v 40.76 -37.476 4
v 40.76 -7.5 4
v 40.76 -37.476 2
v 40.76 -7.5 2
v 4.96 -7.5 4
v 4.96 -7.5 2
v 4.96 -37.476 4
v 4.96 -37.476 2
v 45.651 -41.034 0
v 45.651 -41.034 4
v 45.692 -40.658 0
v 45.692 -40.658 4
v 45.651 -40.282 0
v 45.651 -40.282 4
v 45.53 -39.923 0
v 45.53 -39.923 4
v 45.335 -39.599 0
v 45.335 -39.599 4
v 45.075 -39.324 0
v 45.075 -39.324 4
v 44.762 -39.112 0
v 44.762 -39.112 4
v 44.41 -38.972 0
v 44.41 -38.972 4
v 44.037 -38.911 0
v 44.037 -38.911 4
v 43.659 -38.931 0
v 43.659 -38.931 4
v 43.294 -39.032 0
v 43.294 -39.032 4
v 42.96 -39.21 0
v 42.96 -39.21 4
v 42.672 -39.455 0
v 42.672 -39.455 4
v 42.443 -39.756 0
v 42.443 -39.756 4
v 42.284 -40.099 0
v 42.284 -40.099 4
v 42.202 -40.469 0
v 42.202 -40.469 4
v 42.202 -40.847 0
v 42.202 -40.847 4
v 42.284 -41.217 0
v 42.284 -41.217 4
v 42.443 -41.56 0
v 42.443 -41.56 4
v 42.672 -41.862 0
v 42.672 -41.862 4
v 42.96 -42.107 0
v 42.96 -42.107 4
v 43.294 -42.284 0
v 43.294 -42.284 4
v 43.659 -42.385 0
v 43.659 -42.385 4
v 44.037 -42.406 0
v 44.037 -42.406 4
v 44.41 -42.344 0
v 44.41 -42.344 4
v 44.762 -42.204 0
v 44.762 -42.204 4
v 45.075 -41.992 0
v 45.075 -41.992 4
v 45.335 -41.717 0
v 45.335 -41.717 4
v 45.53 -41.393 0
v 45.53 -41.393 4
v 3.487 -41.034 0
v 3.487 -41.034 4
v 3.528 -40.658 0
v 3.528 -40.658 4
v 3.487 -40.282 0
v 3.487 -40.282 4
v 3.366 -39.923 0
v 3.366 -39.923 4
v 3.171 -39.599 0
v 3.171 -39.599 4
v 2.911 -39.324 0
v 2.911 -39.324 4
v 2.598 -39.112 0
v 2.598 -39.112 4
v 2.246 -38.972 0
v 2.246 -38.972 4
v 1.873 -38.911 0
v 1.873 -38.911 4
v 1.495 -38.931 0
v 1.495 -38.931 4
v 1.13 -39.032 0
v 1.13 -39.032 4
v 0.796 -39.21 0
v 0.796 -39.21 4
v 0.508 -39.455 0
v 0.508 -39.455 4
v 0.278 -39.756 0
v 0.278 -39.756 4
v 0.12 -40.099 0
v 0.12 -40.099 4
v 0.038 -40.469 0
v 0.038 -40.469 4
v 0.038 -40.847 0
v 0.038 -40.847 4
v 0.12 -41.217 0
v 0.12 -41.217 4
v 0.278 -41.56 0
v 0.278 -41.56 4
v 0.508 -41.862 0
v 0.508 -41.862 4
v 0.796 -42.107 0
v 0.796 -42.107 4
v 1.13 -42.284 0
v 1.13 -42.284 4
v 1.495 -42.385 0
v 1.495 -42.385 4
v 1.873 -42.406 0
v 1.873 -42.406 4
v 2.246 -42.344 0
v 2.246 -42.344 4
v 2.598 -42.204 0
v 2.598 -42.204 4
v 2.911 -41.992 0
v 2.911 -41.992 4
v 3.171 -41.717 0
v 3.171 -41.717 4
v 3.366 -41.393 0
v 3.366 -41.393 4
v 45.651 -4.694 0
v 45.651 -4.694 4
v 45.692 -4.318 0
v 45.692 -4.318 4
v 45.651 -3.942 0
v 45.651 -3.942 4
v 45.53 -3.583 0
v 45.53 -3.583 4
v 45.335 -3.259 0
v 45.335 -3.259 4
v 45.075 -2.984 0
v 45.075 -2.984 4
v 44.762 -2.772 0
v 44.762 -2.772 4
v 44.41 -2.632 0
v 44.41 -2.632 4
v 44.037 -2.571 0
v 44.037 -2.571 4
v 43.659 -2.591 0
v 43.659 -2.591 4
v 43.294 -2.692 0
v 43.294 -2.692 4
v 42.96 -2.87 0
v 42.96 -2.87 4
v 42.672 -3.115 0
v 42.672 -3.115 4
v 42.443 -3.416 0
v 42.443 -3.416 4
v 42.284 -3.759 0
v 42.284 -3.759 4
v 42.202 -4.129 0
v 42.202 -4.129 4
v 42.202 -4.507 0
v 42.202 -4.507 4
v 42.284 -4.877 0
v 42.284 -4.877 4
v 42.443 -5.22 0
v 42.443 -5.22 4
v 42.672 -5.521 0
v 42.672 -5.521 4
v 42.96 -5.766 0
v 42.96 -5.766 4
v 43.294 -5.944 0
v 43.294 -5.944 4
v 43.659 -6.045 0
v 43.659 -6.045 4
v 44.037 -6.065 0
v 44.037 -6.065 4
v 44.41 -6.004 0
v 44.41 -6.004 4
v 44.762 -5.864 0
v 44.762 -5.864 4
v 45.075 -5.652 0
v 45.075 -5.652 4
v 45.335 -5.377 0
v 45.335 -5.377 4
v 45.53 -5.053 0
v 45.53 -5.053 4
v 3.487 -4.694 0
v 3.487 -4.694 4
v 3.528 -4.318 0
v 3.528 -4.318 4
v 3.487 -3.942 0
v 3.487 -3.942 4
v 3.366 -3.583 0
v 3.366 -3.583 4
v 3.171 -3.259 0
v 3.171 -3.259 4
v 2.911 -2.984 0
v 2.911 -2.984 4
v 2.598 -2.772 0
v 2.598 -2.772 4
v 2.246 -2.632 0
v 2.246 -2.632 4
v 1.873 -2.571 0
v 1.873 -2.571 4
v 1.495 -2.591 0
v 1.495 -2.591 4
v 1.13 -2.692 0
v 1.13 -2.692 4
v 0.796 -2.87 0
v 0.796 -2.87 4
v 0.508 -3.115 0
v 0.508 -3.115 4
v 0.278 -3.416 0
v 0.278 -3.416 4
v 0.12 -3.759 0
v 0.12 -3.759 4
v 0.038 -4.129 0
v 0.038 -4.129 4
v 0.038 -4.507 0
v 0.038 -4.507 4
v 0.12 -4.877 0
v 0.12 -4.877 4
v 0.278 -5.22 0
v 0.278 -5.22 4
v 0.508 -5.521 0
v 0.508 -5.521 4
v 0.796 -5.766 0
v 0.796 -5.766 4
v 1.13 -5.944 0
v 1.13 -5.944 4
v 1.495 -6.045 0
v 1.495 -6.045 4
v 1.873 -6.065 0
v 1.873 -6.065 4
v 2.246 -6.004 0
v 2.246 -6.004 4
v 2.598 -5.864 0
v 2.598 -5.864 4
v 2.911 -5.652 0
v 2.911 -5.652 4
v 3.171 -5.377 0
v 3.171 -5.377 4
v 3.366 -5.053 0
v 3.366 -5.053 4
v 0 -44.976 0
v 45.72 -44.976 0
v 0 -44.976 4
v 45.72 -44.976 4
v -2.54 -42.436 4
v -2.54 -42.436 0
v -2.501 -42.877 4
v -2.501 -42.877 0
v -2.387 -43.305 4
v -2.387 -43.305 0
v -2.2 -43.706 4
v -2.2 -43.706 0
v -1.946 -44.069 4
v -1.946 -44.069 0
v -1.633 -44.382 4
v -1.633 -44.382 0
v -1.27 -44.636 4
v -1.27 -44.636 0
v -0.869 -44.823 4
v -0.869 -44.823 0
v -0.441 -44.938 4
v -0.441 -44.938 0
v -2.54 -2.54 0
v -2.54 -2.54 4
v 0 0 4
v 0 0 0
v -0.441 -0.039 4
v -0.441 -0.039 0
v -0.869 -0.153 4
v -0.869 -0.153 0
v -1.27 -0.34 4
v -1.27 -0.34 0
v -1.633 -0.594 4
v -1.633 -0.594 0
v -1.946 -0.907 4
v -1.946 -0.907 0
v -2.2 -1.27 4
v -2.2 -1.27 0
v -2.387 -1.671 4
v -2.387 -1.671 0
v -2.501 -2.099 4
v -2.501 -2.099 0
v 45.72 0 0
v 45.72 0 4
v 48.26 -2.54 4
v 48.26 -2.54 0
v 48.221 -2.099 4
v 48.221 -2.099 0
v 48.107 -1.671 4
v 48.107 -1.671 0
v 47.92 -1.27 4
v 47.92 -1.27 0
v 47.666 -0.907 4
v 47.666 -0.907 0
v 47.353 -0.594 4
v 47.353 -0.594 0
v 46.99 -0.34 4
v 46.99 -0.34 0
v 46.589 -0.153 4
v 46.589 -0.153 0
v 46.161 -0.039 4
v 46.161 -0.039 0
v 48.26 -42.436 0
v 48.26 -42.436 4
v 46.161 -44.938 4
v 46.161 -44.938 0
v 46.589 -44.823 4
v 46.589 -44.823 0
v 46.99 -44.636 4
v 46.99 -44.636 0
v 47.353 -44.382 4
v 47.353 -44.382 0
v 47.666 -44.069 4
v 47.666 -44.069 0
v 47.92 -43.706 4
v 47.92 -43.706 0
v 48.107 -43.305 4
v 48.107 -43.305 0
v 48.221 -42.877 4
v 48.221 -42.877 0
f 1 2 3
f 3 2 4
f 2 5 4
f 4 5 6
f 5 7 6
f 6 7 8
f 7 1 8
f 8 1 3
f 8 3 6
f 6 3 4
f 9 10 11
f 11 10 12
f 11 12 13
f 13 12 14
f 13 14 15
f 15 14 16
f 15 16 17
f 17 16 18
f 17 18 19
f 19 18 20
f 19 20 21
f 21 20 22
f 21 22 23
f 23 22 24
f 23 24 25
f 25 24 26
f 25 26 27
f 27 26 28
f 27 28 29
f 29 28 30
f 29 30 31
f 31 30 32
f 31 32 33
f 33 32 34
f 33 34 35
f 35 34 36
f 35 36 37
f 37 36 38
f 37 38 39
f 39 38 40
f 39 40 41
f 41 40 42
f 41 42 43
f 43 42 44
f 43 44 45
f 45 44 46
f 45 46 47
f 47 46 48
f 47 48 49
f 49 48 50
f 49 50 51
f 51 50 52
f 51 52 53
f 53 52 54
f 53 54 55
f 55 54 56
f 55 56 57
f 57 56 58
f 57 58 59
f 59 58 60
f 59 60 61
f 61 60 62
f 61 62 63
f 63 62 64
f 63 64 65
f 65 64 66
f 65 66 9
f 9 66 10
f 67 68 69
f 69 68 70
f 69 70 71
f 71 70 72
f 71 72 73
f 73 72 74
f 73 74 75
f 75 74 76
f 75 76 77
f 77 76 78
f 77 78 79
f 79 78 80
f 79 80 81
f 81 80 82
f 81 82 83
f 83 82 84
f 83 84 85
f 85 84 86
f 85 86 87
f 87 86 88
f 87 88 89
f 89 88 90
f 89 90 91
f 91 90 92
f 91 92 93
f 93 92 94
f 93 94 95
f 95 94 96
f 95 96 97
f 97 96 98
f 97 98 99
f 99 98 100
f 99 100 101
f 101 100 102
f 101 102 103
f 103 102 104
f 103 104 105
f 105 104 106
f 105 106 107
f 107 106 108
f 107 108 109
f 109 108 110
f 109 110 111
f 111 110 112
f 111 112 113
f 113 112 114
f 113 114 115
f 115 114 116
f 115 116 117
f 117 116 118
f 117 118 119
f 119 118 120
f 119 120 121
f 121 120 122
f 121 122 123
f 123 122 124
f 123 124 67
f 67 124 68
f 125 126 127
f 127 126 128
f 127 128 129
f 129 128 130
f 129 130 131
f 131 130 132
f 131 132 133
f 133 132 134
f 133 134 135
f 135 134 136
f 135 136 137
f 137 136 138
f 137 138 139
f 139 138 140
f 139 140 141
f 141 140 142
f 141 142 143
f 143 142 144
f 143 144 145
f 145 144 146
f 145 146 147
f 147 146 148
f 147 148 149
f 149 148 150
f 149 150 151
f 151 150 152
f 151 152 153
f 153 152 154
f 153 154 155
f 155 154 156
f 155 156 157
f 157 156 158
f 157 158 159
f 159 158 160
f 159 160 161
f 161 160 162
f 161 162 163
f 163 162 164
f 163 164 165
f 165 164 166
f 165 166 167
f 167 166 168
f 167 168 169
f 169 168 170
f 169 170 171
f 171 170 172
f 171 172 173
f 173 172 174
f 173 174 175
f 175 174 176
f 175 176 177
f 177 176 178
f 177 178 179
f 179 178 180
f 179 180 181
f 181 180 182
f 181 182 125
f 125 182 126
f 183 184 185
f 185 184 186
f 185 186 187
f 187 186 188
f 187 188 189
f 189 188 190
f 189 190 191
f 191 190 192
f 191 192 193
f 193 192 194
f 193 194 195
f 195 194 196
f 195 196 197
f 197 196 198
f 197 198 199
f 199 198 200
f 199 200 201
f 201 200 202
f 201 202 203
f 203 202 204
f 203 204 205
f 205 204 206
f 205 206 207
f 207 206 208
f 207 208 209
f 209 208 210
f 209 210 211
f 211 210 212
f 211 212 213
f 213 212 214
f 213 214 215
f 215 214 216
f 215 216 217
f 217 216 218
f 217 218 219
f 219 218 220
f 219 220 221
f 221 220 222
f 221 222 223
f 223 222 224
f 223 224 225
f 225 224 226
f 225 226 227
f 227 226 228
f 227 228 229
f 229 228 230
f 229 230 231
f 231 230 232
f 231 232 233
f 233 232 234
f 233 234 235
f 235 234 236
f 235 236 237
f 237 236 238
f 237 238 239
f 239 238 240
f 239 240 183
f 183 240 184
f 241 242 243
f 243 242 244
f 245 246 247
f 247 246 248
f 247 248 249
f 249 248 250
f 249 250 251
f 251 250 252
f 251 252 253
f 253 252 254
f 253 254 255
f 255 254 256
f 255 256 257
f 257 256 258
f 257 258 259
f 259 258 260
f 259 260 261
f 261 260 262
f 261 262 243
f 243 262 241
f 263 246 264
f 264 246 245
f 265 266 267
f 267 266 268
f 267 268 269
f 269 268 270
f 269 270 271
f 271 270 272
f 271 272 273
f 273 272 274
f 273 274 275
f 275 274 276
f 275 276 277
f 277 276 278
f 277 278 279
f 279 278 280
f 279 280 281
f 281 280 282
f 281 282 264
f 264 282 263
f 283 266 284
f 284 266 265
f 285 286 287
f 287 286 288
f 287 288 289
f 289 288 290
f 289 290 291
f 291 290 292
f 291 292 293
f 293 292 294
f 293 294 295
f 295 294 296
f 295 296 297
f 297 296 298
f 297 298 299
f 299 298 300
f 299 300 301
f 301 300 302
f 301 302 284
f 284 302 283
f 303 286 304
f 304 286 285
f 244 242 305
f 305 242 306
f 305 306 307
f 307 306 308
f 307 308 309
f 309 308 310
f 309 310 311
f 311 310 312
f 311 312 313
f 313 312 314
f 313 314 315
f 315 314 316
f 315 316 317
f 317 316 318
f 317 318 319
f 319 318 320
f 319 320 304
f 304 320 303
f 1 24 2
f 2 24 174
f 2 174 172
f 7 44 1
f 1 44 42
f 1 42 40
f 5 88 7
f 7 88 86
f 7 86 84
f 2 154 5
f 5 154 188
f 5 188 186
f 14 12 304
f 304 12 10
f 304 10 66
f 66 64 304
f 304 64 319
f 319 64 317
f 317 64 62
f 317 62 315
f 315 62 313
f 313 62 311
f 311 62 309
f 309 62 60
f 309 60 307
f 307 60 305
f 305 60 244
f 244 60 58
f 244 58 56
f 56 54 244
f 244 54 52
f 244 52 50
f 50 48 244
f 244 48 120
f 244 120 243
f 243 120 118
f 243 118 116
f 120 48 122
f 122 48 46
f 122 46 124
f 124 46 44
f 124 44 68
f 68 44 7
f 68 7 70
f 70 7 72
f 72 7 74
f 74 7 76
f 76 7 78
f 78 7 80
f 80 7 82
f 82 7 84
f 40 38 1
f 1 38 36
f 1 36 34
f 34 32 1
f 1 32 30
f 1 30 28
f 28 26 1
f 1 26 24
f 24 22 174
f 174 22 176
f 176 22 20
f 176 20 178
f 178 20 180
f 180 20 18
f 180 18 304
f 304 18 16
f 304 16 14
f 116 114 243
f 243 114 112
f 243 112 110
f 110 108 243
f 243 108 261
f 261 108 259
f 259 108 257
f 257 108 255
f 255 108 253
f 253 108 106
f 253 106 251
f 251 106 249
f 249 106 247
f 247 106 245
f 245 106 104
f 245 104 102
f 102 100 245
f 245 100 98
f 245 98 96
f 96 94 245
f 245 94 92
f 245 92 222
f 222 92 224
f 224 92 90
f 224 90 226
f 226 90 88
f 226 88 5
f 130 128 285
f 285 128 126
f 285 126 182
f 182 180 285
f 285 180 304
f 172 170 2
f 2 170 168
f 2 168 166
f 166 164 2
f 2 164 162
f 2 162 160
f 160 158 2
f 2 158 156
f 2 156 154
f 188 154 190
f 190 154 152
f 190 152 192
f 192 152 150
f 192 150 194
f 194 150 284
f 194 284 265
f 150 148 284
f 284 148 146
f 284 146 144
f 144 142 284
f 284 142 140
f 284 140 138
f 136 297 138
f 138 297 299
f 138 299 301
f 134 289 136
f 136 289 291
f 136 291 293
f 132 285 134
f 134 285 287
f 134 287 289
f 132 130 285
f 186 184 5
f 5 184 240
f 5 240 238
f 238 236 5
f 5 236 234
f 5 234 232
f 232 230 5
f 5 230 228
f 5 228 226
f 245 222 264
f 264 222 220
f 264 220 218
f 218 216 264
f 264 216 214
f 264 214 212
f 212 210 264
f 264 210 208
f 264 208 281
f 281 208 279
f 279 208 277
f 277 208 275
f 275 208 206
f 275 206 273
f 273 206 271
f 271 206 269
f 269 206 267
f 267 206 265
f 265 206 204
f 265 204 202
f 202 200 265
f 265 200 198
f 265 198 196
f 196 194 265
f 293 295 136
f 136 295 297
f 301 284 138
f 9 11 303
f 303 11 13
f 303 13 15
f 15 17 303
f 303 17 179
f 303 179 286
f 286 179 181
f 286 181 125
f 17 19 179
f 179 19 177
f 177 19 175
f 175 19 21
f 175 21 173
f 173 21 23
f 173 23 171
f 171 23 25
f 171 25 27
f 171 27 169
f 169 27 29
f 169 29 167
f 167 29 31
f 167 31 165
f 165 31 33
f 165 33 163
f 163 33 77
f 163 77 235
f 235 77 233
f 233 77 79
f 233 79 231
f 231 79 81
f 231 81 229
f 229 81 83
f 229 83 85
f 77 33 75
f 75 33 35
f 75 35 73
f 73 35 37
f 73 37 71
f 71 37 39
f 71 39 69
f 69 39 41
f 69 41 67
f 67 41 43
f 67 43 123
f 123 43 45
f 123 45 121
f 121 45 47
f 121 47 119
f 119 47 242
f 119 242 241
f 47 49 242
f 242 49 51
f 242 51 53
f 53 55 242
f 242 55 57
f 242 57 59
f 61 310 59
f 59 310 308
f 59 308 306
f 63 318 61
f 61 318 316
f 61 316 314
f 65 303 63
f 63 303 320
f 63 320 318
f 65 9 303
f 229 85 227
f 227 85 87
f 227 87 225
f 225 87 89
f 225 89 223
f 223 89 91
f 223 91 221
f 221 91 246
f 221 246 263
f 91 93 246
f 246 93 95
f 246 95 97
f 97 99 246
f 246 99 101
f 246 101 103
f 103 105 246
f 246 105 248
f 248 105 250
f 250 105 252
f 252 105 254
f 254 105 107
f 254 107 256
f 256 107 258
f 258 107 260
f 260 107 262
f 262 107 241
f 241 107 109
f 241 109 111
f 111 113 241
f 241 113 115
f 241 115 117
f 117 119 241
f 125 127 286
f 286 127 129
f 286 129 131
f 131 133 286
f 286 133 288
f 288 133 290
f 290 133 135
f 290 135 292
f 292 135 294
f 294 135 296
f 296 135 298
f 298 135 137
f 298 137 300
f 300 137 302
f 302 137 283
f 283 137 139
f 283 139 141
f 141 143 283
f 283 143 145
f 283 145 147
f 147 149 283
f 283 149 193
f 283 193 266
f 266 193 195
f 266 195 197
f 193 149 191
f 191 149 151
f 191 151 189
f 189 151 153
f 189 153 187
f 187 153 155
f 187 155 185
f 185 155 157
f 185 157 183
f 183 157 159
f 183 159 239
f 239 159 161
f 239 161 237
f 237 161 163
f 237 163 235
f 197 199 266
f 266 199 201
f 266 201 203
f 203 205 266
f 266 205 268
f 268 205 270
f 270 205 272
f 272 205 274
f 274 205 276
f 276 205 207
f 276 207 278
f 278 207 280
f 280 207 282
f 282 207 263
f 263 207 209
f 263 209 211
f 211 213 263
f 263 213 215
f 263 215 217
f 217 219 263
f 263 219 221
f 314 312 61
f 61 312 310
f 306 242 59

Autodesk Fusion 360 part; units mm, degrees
sketch "Sketch10" plane through (0, 0, 0) normal (0, 0, 1) x (1, 0, 0)
  line L0 (0, 0) -> (45.72, 0)
  arc A0 (48.26, -2.54) -> (45.72, 0) centre (45.72, -2.54) ccw
  line L1 (45.72, -2.54) -> (48.26, -2.54) construction
  line L2 (45.72, -2.54) -> (45.72, 0) construction
  line L3 (48.26, -2.54) -> (48.26, -42.4361)
  arc A1 (48.26, -2.54) -> (45.72, 0) centre (45.72, -2.54) ccw
  arc A2 (45.72, -44.9761) -> (48.26, -42.4361) centre (45.72, -42.4361) ccw
  line L4 (0, -42.4361) -> (-2.54, -42.4361) construction
  line L5 (45.72, -44.9761) -> (0, -44.9761)
  arc A3 (-2.54, -42.4361) -> (0, -44.9761) centre (0, -42.4361) ccw
  arc A4 (-2.54, -42.4361) -> (0, -44.9761) centre (0, -42.4361) ccw
  line L6 (0, -42.4361) -> (0, -44.9761) construction
  arc A5 (0, 0) -> (-2.54, -2.54) centre (0, -2.54) ccw
  line L7 (-2.54, -42.4361) -> (-2.54, -2.54)
  point P0 (45.72, -44.9761)
  dimension "d5" = 45.72
  dimension "d7" = 2.54
  dimension "d8" = 90
  dimension "d9" = 39.8961
  dimension "d10" = 2.54
  dimension "d11" = 2.54
  dimension "d12" = 45.72
  dimension "d13" = 2.54
  dimension "d14" = 90
  dimension "d15" = 39.8961
  dimension "d16" = 2.54
  dimension "d17" = 2.54
extrude "Extrude3" add sketch "Sketch10" along normal blind 4
sketch "Sketch11" plane through (0, 0, 4) normal (0, 0, 1) x (-1, 0, 0)
  arc A0 (-45.72, 44.9761) -> (-48.26, 42.4361) centre (-45.72, 42.4361) ccw
  line L0 (-48.26, 42.4361) -> (-48.26, 2.54)
  arc A1 (-48.26, 2.54) -> (-45.72, 0) centre (-45.72, 2.54) ccw
  line L1 (-45.72, 0) -> (0, 0)
  arc A2 (0, 0) -> (2.54, 2.54) centre (0, 2.54) ccw
  line L2 (2.54, 2.54) -> (2.54, 42.4361)
  arc A3 (2.54, 42.4361) -> (0, 44.9761) centre (0, 42.4361) ccw
  line L3 (0, 44.9761) -> (-45.72, 44.9761)
  circle A4 centre (-1.778, 4.318) radius 1.75
  dimension "d22" = 3.5
extrude "Extrude4" cut sketch "Sketch11" against normal blind 4 contours A4
sketch "Sketch12" plane through (0, 0, 4) normal (0, 0, 1) x (-1, 0, 0)
  circle A0 centre (-1.778, 4.318) radius 1.75
  arc A1 (-45.72, 44.9761) -> (-48.26, 42.4361) centre (-45.72, 42.4361) ccw
  line L0 (-48.26, 42.4361) -> (-48.26, 2.54)
  arc A2 (-48.26, 2.54) -> (-45.72, 0) centre (-45.72, 2.54) ccw
  line L1 (-45.72, 0) -> (0, 0)
  arc A3 (0, 0) -> (2.54, 2.54) centre (0, 2.54) ccw
  line L2 (2.54, 2.54) -> (2.54, 42.4361)
  arc A4 (2.54, 42.4361) -> (0, 44.9761) centre (0, 42.4361) ccw
  line L3 (0, 44.9761) -> (-45.72, 44.9761)
  circle A5 centre (-43.942, 4.318) radius 1.75
  dimension "d27" = 3.5
extrude "Extrude5" cut sketch "Sketch12" against normal blind 4 contours A5
sketch "Sketch13" plane through (0, 0, 4) normal (0, 0, 1) x (-1, 0, 0)
  circle A0 centre (-43.942, 4.318) radius 1.75
  circle A1 centre (-1.778, 4.318) radius 1.75
  arc A2 (-45.72, 44.9761) -> (-48.26, 42.4361) centre (-45.72, 42.4361) ccw
  line L0 (-48.26, 42.4361) -> (-48.26, 2.54)
  arc A3 (-48.26, 2.54) -> (-45.72, 0) centre (-45.72, 2.54) ccw
  line L1 (-45.72, 0) -> (0, 0)
  arc A4 (0, 0) -> (2.54, 2.54) centre (0, 2.54) ccw
  line L2 (2.54, 2.54) -> (2.54, 42.4361)
  arc A5 (2.54, 42.4361) -> (0, 44.9761) centre (0, 42.4361) ccw
  line L3 (0, 44.9761) -> (-45.72, 44.9761)
  circle A6 centre (-1.778, 40.6581) radius 1.75
  dimension "d32" = 3.5
extrude "Extrude6" cut sketch "Sketch13" against normal blind 4 contours A6
sketch "Sketch14" plane through (0, 0, 4) normal (0, 0, 1) x (-1, 0, 0)
  circle A0 centre (-1.778, 40.6581) radius 1.75
  circle A1 centre (-43.942, 4.318) radius 1.75
  circle A2 centre (-1.778, 4.318) radius 1.75
  arc A3 (-45.72, 44.9761) -> (-48.26, 42.4361) centre (-45.72, 42.4361) ccw
  line L0 (-48.26, 42.4361) -> (-48.26, 2.54)
  arc A4 (-48.26, 2.54) -> (-45.72, 0) centre (-45.72, 2.54) ccw
  line L1 (-45.72, 0) -> (0, 0)
  arc A5 (0, 0) -> (2.54, 2.54) centre (0, 2.54) ccw
  line L2 (2.54, 2.54) -> (2.54, 42.4361)
  arc A6 (2.54, 42.4361) -> (0, 44.9761) centre (0, 42.4361) ccw
  line L3 (0, 44.9761) -> (-45.72, 44.9761)
  circle A7 centre (-43.942, 40.6581) radius 1.75
  dimension "d37" = 3.5
extrude "Extrude7" cut sketch "Sketch14" against normal blind 4 contours A7
sketch "Sketch15" plane through (0, 0, 4) normal (0, 0, 1) x (-1, 0, 0)
  circle A0 centre (-43.942, 40.6581) radius 1.75
  circle A1 centre (-1.778, 40.6581) radius 1.75
  circle A2 centre (-43.942, 4.318) radius 1.75
  circle A3 centre (-1.778, 4.318) radius 1.75
  arc A4 (-45.72, 44.9761) -> (-48.26, 42.4361) centre (-45.72, 42.4361) ccw
  line L0 (-48.26, 42.4361) -> (-48.26, 2.54)
  arc A5 (-48.26, 2.54) -> (-45.72, 0) centre (-45.72, 2.54) ccw
  line L1 (-45.72, 0) -> (0, 0)
  arc A6 (0, 0) -> (2.54, 2.54) centre (0, 2.54) ccw
  line L2 (2.54, 2.54) -> (2.54, 42.4361)
  arc A7 (2.54, 42.4361) -> (0, 44.9761) centre (0, 42.4361) ccw
  line L3 (0, 44.9761) -> (-45.72, 44.9761)
  line L4 (-4.96, 7.5) -> (-40.76, 7.5)
  line L5 (-40.76, 7.5) -> (-40.76, 37.4761)
  line L6 (-40.76, 37.4761) -> (-4.96, 37.4761)
  line L7 (-4.96, 37.4761) -> (-4.96, 7.5)
extrude "Extrude8" cut sketch "Sketch15" against normal blind 2 contours L4 L5 L6 L7
